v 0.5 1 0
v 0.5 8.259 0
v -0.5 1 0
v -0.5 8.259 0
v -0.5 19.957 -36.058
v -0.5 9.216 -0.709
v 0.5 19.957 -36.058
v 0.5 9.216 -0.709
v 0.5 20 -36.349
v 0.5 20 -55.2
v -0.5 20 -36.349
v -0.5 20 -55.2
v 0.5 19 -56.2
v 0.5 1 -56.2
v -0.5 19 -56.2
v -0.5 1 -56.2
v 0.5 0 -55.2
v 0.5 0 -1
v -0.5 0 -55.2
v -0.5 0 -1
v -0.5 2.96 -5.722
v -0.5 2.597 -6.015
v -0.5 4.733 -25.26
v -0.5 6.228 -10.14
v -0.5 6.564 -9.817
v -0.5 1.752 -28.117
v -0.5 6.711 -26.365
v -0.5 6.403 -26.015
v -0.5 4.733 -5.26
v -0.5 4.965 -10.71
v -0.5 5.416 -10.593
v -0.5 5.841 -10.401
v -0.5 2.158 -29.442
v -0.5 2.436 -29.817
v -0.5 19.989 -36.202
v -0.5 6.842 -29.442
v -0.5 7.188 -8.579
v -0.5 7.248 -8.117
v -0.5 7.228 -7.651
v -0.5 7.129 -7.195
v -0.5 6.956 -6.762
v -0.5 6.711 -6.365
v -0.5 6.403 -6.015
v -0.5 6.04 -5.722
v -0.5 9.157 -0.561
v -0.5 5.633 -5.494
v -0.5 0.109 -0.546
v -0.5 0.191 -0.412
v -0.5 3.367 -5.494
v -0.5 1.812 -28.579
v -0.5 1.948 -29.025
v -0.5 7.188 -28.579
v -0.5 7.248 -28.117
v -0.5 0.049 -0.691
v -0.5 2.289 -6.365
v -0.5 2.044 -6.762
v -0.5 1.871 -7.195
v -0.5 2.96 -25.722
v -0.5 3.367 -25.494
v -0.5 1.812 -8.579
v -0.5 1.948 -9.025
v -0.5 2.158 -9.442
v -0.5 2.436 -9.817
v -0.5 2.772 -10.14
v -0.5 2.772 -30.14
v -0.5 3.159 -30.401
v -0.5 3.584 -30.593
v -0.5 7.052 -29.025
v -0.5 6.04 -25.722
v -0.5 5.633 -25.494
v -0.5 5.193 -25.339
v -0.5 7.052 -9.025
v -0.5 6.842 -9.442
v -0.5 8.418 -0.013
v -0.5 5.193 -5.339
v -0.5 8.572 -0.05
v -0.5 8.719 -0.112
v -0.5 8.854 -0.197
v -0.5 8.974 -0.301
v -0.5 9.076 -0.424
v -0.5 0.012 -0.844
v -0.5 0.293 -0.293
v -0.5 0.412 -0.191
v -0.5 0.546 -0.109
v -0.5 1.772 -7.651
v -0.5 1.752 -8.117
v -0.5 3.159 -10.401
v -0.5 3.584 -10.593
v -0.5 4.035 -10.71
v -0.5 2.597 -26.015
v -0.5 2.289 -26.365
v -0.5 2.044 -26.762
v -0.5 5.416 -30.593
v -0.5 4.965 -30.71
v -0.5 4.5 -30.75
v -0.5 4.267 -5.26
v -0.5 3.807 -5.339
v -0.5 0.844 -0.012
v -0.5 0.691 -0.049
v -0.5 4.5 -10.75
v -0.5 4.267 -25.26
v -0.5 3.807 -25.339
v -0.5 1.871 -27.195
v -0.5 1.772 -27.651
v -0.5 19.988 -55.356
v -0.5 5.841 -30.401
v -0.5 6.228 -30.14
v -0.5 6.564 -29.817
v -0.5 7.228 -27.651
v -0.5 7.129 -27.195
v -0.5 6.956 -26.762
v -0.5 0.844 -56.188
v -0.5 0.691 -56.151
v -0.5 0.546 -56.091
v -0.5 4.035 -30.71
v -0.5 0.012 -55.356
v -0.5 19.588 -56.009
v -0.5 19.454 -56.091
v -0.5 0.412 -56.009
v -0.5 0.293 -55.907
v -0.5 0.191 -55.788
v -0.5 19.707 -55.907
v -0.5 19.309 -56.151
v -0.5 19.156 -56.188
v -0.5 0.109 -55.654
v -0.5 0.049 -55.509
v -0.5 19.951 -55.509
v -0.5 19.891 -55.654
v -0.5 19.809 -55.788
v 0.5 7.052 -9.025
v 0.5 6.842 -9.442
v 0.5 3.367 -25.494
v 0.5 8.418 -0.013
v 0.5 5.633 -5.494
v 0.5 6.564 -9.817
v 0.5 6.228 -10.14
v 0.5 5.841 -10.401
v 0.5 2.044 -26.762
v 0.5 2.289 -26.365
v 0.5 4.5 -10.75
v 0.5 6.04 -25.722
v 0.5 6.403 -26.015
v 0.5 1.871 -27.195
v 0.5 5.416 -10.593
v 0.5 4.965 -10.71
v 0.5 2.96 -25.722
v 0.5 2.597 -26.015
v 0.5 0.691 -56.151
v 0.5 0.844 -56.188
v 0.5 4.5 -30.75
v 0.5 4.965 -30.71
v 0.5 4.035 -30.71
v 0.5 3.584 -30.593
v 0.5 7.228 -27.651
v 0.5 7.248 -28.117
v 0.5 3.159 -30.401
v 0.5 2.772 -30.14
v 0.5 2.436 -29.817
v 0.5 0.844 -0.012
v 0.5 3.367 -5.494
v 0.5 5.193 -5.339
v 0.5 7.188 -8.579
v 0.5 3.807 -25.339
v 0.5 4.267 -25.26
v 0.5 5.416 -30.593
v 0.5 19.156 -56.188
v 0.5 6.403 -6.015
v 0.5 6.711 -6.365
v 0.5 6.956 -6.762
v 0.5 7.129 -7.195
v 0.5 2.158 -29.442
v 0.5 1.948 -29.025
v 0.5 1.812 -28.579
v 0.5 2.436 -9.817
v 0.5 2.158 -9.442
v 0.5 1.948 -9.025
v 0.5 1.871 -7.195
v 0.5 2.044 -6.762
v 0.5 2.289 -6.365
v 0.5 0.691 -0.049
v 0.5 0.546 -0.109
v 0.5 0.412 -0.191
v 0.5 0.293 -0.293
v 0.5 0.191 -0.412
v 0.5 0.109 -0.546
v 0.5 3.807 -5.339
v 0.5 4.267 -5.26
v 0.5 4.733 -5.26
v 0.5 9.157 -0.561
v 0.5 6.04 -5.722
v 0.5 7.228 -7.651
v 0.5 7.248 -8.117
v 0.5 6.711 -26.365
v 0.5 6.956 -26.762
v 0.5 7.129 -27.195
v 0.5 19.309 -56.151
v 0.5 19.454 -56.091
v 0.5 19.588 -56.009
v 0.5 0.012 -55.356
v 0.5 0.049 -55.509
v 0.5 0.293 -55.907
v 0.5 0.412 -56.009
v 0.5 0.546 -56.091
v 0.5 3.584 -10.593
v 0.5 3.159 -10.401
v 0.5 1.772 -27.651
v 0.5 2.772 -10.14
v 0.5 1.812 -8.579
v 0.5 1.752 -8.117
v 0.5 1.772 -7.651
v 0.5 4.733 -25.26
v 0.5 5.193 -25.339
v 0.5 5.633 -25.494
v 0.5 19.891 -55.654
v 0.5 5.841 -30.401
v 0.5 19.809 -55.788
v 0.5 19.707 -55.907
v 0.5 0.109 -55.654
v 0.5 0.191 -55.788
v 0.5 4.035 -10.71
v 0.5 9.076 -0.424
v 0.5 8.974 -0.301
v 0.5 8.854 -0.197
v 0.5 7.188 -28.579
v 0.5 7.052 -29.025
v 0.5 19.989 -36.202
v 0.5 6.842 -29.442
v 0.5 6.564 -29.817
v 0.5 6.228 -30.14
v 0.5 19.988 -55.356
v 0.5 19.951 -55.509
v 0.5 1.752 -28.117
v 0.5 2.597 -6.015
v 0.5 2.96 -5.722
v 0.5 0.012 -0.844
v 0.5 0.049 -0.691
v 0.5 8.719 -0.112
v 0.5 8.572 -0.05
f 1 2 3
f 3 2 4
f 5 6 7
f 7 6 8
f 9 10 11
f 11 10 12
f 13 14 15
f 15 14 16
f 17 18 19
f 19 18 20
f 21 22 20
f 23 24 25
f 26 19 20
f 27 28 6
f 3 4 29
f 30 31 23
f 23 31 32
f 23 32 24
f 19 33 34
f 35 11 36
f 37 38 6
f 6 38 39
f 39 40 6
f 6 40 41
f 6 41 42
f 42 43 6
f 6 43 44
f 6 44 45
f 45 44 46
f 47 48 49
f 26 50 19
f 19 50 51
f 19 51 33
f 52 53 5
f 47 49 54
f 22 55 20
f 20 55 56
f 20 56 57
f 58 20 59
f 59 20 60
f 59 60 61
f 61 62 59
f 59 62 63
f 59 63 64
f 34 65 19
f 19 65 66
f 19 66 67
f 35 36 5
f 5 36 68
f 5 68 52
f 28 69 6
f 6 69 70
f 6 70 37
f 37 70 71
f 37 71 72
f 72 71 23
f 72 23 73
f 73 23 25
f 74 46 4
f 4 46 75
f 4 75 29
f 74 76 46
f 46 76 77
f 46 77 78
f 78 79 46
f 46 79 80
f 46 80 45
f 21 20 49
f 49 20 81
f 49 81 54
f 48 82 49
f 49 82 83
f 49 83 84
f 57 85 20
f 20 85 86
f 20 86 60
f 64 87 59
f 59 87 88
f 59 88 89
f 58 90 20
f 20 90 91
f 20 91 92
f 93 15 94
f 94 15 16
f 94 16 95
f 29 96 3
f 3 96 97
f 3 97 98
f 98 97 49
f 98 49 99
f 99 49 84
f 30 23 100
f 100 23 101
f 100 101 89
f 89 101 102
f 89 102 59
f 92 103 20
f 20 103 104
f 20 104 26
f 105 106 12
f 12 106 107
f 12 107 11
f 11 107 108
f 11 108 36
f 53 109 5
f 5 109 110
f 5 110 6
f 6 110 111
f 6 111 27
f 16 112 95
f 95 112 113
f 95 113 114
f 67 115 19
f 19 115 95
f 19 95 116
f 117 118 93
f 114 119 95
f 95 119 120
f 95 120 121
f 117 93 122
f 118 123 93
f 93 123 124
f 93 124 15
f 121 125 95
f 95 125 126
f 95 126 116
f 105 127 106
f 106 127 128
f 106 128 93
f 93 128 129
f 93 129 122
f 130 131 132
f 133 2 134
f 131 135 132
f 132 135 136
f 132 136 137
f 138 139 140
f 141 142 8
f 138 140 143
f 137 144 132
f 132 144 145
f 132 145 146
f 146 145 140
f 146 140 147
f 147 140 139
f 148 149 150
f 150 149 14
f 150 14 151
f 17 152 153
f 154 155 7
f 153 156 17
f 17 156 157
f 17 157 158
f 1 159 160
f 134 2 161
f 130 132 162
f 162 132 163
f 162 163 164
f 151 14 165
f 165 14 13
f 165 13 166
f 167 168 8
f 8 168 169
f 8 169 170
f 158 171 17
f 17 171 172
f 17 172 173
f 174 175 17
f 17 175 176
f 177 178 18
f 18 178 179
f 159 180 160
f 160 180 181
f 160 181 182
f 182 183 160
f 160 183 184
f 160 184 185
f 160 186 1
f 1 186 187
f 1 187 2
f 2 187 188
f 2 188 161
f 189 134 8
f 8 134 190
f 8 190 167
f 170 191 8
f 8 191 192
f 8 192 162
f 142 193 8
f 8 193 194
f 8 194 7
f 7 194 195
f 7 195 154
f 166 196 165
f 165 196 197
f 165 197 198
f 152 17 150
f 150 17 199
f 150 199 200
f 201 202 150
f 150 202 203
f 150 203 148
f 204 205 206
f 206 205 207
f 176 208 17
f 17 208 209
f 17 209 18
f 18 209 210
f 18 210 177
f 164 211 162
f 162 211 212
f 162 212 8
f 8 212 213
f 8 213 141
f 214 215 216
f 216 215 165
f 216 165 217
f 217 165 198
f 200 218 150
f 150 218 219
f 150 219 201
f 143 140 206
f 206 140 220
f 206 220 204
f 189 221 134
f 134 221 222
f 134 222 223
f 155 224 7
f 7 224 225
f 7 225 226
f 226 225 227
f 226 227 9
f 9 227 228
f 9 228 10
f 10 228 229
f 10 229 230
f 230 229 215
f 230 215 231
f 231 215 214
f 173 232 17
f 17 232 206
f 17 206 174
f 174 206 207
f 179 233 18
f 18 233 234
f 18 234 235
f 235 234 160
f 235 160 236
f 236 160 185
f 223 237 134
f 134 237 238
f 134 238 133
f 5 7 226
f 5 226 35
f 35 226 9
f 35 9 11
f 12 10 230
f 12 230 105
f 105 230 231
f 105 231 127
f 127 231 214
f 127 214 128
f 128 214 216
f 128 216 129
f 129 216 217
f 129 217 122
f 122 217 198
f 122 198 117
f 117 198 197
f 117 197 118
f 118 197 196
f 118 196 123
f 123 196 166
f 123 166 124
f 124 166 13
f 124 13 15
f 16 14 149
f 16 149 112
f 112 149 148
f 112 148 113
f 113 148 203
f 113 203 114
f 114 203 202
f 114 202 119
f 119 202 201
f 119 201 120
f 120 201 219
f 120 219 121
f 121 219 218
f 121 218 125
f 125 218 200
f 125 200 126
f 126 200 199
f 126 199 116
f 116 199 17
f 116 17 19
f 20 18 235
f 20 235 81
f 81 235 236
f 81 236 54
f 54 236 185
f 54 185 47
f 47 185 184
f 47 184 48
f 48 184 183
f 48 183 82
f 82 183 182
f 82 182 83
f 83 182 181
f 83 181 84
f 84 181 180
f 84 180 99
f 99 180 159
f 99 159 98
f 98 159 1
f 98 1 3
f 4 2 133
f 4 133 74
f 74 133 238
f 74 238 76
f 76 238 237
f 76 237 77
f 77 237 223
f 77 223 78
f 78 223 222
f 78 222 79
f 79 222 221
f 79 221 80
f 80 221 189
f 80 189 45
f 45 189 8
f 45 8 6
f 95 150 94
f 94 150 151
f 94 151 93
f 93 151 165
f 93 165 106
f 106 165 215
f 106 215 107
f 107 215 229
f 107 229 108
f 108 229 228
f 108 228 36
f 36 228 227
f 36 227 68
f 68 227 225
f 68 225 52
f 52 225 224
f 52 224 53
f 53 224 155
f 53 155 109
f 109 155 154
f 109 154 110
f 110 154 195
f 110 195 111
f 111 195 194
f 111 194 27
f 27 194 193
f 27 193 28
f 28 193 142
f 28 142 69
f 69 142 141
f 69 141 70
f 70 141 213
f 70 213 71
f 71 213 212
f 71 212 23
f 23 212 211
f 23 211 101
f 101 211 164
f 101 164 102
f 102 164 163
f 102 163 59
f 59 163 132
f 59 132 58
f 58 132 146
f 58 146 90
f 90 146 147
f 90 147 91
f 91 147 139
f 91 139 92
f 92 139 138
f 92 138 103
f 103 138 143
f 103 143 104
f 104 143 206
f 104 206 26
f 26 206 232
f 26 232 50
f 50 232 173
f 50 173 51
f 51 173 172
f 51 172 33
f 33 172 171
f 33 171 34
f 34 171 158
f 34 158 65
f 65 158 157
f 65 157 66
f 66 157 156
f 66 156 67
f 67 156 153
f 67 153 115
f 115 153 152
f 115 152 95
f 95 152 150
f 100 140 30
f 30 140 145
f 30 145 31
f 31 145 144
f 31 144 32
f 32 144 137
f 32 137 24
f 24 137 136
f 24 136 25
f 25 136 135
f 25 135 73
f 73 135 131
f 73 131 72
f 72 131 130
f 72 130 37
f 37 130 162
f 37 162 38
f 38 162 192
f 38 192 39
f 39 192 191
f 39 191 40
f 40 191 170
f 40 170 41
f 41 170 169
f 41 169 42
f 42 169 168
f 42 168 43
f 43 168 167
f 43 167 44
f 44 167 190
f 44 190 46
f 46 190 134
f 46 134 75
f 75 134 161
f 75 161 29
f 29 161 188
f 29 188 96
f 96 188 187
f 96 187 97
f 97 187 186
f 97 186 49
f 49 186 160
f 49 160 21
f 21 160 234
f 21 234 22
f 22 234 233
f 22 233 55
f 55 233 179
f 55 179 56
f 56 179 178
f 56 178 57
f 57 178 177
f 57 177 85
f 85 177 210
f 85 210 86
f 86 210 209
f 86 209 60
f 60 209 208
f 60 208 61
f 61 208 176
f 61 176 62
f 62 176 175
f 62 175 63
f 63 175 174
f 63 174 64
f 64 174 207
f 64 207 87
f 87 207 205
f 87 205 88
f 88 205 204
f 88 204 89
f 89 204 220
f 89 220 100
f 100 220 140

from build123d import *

# Parameters (mm, degrees)
BOSS_EXTRUDE1_DEPTH      = 0.5
BOSS_EXTRUDE1_DEPTH_BACK = 0.5
FILLET1_R                = 1
SKETCH2_R                = 2.75
CUT_EXTRUDE1_DEPTH       = 60.661042565


with BuildPart() as part:
    # Sketch1 → Boss-Extrude1 (new, two sides: drawn at the far end of the back side and taken through both)
    with BuildSketch(Plane(origin=(0, 0, 0), x_dir=(0, 0, -1), z_dir=(1, 0, 0)).offset(-BOSS_EXTRUDE1_DEPTH_BACK)):
        Polygon((0, 0), (56.2, 0), (56.2, 20), (36.2, 20), (0, 9), align=None)
    extrude(amount=BOSS_EXTRUDE1_DEPTH + BOSS_EXTRUDE1_DEPTH_BACK)

    # Fillet1
    fillet1_edges = [part.edges().sort_by_distance(p)[0] for p in [
        (0, 9, 0),
        (0, 20, -36.2),
        (0, 20, -56.2),
        (0, 0, -56.2),
        (0, 0, 0),
    ]]
    fillet(fillet1_edges, radius=FILLET1_R)

    # Sketch2 → Cut-Extrude1 (cut, through all)
    with BuildSketch(Plane(origin=(0.5, 0, 0), x_dir=(0, 0, -1), z_dir=(1, 0, 0))):
        with Locations((8, 4.5)):
            Circle(SKETCH2_R)
        with Locations((28, 4.5)):
            Circle(SKETCH2_R)
    extrude(amount=-CUT_EXTRUDE1_DEPTH, mode=Mode.SUBTRACT)


solid = part.part
